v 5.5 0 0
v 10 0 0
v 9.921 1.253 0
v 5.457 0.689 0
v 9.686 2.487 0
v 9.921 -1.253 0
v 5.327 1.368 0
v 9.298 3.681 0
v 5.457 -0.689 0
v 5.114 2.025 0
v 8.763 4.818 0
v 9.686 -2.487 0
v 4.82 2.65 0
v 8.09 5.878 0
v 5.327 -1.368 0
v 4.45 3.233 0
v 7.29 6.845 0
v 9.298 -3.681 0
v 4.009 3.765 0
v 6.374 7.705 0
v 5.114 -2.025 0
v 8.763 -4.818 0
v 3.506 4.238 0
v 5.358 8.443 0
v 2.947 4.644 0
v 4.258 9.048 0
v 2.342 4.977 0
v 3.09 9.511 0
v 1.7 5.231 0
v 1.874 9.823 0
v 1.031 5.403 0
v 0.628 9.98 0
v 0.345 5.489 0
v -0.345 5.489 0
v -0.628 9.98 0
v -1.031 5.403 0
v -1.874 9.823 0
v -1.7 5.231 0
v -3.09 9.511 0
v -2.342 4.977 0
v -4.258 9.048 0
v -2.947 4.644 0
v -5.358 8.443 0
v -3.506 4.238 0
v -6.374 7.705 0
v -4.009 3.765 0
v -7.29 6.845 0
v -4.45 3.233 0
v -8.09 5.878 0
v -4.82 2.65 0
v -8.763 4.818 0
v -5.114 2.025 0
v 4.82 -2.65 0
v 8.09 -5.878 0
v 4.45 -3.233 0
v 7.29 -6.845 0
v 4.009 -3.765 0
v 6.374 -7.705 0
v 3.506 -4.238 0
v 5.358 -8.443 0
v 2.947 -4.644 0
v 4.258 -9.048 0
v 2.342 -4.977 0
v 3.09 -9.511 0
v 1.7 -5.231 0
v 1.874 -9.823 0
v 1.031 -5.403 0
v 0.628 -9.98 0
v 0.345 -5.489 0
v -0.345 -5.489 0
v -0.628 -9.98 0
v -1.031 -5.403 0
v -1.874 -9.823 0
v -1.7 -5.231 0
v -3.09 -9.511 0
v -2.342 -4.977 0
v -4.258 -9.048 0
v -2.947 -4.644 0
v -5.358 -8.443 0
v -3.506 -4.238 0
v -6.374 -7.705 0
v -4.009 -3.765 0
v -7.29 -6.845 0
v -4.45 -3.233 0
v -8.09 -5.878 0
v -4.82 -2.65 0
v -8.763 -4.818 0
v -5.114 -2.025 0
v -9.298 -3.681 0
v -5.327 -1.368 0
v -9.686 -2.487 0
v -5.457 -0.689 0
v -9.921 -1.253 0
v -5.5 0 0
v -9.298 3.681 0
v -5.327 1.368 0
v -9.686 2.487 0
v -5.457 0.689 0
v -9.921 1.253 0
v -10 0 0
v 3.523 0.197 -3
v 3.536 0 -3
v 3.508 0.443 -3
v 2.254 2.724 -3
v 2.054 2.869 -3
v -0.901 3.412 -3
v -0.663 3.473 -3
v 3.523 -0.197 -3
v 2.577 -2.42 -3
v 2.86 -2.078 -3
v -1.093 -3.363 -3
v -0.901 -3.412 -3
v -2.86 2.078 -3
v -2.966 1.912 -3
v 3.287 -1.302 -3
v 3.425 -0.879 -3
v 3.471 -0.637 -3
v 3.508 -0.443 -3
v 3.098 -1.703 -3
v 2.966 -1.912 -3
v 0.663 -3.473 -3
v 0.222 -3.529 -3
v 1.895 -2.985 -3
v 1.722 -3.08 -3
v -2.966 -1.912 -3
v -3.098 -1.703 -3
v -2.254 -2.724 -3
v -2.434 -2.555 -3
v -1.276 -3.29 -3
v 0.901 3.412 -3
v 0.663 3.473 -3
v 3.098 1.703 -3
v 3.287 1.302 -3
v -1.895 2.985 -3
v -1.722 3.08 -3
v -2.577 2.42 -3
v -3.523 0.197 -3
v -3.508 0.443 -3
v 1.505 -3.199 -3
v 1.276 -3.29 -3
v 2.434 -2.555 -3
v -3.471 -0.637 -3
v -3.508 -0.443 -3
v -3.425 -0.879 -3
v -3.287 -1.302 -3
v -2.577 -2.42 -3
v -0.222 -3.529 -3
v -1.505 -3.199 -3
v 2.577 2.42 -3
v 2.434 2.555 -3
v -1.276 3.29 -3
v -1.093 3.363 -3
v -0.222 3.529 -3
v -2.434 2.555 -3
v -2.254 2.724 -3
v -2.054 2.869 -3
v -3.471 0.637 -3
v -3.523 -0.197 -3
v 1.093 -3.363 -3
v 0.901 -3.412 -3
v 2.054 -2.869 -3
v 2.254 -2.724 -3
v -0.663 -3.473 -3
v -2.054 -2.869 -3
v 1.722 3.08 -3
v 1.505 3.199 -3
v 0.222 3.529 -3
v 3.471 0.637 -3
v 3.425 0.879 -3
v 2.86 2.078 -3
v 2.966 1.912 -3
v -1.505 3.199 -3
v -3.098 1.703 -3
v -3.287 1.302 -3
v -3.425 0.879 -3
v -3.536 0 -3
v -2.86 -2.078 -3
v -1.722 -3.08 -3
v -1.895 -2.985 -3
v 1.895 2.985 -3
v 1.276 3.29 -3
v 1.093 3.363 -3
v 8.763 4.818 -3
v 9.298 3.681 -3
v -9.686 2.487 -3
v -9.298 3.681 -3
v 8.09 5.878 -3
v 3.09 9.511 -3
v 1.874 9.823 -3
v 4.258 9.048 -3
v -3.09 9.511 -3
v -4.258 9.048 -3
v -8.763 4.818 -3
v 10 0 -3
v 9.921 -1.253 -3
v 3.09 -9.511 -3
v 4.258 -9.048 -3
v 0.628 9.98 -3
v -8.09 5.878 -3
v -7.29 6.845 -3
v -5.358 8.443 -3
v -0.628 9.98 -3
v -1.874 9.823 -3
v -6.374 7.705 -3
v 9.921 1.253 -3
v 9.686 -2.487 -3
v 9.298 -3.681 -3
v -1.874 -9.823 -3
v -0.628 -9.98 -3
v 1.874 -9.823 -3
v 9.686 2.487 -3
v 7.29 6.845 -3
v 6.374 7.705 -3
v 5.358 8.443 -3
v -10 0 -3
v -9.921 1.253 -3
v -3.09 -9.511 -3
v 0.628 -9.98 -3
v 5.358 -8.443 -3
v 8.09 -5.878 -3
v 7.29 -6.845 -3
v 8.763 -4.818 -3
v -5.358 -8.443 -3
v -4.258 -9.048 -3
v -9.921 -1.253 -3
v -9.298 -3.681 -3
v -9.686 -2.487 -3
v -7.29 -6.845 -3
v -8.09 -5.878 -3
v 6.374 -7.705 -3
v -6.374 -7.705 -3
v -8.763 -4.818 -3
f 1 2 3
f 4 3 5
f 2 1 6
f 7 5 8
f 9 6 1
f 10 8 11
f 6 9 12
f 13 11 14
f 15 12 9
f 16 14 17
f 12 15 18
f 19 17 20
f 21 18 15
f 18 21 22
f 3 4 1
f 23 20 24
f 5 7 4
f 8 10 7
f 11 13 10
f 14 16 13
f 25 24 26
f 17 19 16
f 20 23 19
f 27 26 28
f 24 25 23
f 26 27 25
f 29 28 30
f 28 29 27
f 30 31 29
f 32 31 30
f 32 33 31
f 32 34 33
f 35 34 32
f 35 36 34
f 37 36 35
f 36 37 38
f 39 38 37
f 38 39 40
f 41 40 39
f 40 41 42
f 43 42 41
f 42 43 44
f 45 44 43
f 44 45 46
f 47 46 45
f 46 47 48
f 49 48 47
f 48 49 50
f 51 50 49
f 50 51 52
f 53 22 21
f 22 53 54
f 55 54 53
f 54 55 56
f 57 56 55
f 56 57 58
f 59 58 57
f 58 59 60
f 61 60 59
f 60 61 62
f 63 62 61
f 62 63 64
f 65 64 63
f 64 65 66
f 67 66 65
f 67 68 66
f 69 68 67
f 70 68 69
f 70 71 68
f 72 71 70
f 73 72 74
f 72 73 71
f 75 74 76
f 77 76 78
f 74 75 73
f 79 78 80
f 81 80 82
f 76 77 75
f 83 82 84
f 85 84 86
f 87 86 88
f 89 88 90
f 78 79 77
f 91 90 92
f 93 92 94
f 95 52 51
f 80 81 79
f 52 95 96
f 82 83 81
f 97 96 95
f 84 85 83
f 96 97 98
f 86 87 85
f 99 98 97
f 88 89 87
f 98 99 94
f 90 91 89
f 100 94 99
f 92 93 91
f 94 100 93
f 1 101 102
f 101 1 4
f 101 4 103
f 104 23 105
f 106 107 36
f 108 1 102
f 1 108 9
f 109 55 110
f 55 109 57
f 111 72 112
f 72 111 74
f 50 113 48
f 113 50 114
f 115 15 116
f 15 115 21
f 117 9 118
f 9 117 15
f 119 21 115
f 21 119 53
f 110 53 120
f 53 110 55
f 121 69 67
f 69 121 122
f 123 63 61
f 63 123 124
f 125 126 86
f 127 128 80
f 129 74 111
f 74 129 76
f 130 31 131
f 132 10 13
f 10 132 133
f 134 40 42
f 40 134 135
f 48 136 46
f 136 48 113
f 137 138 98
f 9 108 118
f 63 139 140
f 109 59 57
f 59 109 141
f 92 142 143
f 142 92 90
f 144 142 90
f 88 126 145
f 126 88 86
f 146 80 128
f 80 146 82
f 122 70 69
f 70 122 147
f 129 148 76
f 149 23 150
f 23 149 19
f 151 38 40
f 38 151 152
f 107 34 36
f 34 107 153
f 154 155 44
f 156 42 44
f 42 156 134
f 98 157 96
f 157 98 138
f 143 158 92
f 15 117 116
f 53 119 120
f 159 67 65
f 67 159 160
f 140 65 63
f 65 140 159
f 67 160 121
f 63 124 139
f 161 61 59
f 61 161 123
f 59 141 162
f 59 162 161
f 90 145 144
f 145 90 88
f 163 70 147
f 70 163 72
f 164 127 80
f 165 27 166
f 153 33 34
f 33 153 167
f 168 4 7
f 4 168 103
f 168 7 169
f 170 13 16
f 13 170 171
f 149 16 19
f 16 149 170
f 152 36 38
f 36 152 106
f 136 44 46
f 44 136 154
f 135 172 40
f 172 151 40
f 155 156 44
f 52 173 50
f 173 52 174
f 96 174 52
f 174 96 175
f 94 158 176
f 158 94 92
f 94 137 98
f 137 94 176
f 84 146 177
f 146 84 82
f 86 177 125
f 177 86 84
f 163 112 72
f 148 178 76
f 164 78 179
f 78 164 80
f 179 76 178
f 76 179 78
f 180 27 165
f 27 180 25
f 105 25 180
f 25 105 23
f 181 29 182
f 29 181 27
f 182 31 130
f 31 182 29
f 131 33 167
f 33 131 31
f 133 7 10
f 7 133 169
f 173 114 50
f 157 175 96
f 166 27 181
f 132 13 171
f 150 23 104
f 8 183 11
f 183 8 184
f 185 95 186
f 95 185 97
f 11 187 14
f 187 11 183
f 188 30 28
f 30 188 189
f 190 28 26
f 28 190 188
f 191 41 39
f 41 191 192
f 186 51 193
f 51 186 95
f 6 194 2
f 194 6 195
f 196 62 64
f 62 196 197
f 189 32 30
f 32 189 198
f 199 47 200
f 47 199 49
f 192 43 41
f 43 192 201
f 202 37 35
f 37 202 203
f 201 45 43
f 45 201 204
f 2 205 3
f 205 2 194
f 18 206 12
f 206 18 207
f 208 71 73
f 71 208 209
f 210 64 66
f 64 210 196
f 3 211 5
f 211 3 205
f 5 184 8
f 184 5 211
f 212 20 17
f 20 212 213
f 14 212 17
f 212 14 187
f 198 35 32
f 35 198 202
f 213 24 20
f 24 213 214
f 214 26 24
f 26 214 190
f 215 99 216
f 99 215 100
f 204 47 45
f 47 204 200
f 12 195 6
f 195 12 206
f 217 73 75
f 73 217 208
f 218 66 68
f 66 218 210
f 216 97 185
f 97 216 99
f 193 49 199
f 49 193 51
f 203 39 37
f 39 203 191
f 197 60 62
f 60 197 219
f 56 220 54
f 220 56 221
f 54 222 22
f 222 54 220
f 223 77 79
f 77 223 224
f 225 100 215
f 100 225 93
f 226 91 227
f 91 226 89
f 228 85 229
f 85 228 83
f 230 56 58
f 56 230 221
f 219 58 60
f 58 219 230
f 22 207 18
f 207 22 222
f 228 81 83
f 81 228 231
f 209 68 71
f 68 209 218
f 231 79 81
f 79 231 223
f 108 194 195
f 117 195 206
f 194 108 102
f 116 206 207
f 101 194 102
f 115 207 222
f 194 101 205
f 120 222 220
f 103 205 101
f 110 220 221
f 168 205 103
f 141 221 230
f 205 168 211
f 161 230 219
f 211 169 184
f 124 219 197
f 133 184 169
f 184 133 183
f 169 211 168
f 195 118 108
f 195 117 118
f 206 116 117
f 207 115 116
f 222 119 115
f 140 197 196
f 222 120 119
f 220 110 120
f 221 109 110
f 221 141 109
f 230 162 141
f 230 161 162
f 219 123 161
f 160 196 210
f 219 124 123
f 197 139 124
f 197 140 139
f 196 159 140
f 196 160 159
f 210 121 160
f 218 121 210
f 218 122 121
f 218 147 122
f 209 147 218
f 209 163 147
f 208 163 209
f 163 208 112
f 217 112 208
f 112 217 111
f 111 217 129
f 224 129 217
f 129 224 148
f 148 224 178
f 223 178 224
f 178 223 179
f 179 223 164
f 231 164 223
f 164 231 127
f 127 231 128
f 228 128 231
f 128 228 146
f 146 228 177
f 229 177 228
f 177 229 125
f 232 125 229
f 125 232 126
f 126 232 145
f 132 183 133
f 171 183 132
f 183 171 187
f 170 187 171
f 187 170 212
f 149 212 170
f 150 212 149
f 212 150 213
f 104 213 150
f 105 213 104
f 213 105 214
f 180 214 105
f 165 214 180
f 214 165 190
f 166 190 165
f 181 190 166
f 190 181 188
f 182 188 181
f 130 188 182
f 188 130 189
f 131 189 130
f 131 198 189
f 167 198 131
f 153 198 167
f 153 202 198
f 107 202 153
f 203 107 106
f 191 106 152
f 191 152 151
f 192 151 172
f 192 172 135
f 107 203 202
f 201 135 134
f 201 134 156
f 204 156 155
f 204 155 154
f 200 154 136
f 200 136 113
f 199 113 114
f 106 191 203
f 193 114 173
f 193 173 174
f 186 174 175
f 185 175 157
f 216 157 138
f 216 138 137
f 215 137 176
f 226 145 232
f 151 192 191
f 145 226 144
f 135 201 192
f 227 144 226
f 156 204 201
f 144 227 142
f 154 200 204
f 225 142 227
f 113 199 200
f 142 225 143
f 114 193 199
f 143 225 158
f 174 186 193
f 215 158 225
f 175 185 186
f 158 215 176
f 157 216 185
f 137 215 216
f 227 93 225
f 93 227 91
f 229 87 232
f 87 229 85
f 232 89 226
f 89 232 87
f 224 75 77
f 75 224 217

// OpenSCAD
$fn = 50;


difference() {
	union() {
		translate(v = [0, 0, -3.0000000000]) {
			cylinder(h = 3, r = 10.0000000000);
		}
	}
	union() {
		translate(v = [0, 0, 0]) {
			rotate(a = [0, 0, 0]) {
				difference() {
					union() {
						#translate(v = [0, 0, -3.0000000000]) {
							cylinder(h = 3, r = 2.2500000000);
						}
						#translate(v = [0, 0, -4.2000000000]) {
							cylinder(h = 4.2000000000, r1 = 2.7500000000, r2 = 5.5000000000);
						}
						#translate(v = [0, 0, -3.0000000000]) {
							cylinder(h = 3, r = 2.7500000000);
						}
						#translate(v = [0, 0, -3.0000000000]) {
							cylinder(h = 3, r = 2.2500000000);
						}
					}
					union();
				}
			}
		}
	}
}
